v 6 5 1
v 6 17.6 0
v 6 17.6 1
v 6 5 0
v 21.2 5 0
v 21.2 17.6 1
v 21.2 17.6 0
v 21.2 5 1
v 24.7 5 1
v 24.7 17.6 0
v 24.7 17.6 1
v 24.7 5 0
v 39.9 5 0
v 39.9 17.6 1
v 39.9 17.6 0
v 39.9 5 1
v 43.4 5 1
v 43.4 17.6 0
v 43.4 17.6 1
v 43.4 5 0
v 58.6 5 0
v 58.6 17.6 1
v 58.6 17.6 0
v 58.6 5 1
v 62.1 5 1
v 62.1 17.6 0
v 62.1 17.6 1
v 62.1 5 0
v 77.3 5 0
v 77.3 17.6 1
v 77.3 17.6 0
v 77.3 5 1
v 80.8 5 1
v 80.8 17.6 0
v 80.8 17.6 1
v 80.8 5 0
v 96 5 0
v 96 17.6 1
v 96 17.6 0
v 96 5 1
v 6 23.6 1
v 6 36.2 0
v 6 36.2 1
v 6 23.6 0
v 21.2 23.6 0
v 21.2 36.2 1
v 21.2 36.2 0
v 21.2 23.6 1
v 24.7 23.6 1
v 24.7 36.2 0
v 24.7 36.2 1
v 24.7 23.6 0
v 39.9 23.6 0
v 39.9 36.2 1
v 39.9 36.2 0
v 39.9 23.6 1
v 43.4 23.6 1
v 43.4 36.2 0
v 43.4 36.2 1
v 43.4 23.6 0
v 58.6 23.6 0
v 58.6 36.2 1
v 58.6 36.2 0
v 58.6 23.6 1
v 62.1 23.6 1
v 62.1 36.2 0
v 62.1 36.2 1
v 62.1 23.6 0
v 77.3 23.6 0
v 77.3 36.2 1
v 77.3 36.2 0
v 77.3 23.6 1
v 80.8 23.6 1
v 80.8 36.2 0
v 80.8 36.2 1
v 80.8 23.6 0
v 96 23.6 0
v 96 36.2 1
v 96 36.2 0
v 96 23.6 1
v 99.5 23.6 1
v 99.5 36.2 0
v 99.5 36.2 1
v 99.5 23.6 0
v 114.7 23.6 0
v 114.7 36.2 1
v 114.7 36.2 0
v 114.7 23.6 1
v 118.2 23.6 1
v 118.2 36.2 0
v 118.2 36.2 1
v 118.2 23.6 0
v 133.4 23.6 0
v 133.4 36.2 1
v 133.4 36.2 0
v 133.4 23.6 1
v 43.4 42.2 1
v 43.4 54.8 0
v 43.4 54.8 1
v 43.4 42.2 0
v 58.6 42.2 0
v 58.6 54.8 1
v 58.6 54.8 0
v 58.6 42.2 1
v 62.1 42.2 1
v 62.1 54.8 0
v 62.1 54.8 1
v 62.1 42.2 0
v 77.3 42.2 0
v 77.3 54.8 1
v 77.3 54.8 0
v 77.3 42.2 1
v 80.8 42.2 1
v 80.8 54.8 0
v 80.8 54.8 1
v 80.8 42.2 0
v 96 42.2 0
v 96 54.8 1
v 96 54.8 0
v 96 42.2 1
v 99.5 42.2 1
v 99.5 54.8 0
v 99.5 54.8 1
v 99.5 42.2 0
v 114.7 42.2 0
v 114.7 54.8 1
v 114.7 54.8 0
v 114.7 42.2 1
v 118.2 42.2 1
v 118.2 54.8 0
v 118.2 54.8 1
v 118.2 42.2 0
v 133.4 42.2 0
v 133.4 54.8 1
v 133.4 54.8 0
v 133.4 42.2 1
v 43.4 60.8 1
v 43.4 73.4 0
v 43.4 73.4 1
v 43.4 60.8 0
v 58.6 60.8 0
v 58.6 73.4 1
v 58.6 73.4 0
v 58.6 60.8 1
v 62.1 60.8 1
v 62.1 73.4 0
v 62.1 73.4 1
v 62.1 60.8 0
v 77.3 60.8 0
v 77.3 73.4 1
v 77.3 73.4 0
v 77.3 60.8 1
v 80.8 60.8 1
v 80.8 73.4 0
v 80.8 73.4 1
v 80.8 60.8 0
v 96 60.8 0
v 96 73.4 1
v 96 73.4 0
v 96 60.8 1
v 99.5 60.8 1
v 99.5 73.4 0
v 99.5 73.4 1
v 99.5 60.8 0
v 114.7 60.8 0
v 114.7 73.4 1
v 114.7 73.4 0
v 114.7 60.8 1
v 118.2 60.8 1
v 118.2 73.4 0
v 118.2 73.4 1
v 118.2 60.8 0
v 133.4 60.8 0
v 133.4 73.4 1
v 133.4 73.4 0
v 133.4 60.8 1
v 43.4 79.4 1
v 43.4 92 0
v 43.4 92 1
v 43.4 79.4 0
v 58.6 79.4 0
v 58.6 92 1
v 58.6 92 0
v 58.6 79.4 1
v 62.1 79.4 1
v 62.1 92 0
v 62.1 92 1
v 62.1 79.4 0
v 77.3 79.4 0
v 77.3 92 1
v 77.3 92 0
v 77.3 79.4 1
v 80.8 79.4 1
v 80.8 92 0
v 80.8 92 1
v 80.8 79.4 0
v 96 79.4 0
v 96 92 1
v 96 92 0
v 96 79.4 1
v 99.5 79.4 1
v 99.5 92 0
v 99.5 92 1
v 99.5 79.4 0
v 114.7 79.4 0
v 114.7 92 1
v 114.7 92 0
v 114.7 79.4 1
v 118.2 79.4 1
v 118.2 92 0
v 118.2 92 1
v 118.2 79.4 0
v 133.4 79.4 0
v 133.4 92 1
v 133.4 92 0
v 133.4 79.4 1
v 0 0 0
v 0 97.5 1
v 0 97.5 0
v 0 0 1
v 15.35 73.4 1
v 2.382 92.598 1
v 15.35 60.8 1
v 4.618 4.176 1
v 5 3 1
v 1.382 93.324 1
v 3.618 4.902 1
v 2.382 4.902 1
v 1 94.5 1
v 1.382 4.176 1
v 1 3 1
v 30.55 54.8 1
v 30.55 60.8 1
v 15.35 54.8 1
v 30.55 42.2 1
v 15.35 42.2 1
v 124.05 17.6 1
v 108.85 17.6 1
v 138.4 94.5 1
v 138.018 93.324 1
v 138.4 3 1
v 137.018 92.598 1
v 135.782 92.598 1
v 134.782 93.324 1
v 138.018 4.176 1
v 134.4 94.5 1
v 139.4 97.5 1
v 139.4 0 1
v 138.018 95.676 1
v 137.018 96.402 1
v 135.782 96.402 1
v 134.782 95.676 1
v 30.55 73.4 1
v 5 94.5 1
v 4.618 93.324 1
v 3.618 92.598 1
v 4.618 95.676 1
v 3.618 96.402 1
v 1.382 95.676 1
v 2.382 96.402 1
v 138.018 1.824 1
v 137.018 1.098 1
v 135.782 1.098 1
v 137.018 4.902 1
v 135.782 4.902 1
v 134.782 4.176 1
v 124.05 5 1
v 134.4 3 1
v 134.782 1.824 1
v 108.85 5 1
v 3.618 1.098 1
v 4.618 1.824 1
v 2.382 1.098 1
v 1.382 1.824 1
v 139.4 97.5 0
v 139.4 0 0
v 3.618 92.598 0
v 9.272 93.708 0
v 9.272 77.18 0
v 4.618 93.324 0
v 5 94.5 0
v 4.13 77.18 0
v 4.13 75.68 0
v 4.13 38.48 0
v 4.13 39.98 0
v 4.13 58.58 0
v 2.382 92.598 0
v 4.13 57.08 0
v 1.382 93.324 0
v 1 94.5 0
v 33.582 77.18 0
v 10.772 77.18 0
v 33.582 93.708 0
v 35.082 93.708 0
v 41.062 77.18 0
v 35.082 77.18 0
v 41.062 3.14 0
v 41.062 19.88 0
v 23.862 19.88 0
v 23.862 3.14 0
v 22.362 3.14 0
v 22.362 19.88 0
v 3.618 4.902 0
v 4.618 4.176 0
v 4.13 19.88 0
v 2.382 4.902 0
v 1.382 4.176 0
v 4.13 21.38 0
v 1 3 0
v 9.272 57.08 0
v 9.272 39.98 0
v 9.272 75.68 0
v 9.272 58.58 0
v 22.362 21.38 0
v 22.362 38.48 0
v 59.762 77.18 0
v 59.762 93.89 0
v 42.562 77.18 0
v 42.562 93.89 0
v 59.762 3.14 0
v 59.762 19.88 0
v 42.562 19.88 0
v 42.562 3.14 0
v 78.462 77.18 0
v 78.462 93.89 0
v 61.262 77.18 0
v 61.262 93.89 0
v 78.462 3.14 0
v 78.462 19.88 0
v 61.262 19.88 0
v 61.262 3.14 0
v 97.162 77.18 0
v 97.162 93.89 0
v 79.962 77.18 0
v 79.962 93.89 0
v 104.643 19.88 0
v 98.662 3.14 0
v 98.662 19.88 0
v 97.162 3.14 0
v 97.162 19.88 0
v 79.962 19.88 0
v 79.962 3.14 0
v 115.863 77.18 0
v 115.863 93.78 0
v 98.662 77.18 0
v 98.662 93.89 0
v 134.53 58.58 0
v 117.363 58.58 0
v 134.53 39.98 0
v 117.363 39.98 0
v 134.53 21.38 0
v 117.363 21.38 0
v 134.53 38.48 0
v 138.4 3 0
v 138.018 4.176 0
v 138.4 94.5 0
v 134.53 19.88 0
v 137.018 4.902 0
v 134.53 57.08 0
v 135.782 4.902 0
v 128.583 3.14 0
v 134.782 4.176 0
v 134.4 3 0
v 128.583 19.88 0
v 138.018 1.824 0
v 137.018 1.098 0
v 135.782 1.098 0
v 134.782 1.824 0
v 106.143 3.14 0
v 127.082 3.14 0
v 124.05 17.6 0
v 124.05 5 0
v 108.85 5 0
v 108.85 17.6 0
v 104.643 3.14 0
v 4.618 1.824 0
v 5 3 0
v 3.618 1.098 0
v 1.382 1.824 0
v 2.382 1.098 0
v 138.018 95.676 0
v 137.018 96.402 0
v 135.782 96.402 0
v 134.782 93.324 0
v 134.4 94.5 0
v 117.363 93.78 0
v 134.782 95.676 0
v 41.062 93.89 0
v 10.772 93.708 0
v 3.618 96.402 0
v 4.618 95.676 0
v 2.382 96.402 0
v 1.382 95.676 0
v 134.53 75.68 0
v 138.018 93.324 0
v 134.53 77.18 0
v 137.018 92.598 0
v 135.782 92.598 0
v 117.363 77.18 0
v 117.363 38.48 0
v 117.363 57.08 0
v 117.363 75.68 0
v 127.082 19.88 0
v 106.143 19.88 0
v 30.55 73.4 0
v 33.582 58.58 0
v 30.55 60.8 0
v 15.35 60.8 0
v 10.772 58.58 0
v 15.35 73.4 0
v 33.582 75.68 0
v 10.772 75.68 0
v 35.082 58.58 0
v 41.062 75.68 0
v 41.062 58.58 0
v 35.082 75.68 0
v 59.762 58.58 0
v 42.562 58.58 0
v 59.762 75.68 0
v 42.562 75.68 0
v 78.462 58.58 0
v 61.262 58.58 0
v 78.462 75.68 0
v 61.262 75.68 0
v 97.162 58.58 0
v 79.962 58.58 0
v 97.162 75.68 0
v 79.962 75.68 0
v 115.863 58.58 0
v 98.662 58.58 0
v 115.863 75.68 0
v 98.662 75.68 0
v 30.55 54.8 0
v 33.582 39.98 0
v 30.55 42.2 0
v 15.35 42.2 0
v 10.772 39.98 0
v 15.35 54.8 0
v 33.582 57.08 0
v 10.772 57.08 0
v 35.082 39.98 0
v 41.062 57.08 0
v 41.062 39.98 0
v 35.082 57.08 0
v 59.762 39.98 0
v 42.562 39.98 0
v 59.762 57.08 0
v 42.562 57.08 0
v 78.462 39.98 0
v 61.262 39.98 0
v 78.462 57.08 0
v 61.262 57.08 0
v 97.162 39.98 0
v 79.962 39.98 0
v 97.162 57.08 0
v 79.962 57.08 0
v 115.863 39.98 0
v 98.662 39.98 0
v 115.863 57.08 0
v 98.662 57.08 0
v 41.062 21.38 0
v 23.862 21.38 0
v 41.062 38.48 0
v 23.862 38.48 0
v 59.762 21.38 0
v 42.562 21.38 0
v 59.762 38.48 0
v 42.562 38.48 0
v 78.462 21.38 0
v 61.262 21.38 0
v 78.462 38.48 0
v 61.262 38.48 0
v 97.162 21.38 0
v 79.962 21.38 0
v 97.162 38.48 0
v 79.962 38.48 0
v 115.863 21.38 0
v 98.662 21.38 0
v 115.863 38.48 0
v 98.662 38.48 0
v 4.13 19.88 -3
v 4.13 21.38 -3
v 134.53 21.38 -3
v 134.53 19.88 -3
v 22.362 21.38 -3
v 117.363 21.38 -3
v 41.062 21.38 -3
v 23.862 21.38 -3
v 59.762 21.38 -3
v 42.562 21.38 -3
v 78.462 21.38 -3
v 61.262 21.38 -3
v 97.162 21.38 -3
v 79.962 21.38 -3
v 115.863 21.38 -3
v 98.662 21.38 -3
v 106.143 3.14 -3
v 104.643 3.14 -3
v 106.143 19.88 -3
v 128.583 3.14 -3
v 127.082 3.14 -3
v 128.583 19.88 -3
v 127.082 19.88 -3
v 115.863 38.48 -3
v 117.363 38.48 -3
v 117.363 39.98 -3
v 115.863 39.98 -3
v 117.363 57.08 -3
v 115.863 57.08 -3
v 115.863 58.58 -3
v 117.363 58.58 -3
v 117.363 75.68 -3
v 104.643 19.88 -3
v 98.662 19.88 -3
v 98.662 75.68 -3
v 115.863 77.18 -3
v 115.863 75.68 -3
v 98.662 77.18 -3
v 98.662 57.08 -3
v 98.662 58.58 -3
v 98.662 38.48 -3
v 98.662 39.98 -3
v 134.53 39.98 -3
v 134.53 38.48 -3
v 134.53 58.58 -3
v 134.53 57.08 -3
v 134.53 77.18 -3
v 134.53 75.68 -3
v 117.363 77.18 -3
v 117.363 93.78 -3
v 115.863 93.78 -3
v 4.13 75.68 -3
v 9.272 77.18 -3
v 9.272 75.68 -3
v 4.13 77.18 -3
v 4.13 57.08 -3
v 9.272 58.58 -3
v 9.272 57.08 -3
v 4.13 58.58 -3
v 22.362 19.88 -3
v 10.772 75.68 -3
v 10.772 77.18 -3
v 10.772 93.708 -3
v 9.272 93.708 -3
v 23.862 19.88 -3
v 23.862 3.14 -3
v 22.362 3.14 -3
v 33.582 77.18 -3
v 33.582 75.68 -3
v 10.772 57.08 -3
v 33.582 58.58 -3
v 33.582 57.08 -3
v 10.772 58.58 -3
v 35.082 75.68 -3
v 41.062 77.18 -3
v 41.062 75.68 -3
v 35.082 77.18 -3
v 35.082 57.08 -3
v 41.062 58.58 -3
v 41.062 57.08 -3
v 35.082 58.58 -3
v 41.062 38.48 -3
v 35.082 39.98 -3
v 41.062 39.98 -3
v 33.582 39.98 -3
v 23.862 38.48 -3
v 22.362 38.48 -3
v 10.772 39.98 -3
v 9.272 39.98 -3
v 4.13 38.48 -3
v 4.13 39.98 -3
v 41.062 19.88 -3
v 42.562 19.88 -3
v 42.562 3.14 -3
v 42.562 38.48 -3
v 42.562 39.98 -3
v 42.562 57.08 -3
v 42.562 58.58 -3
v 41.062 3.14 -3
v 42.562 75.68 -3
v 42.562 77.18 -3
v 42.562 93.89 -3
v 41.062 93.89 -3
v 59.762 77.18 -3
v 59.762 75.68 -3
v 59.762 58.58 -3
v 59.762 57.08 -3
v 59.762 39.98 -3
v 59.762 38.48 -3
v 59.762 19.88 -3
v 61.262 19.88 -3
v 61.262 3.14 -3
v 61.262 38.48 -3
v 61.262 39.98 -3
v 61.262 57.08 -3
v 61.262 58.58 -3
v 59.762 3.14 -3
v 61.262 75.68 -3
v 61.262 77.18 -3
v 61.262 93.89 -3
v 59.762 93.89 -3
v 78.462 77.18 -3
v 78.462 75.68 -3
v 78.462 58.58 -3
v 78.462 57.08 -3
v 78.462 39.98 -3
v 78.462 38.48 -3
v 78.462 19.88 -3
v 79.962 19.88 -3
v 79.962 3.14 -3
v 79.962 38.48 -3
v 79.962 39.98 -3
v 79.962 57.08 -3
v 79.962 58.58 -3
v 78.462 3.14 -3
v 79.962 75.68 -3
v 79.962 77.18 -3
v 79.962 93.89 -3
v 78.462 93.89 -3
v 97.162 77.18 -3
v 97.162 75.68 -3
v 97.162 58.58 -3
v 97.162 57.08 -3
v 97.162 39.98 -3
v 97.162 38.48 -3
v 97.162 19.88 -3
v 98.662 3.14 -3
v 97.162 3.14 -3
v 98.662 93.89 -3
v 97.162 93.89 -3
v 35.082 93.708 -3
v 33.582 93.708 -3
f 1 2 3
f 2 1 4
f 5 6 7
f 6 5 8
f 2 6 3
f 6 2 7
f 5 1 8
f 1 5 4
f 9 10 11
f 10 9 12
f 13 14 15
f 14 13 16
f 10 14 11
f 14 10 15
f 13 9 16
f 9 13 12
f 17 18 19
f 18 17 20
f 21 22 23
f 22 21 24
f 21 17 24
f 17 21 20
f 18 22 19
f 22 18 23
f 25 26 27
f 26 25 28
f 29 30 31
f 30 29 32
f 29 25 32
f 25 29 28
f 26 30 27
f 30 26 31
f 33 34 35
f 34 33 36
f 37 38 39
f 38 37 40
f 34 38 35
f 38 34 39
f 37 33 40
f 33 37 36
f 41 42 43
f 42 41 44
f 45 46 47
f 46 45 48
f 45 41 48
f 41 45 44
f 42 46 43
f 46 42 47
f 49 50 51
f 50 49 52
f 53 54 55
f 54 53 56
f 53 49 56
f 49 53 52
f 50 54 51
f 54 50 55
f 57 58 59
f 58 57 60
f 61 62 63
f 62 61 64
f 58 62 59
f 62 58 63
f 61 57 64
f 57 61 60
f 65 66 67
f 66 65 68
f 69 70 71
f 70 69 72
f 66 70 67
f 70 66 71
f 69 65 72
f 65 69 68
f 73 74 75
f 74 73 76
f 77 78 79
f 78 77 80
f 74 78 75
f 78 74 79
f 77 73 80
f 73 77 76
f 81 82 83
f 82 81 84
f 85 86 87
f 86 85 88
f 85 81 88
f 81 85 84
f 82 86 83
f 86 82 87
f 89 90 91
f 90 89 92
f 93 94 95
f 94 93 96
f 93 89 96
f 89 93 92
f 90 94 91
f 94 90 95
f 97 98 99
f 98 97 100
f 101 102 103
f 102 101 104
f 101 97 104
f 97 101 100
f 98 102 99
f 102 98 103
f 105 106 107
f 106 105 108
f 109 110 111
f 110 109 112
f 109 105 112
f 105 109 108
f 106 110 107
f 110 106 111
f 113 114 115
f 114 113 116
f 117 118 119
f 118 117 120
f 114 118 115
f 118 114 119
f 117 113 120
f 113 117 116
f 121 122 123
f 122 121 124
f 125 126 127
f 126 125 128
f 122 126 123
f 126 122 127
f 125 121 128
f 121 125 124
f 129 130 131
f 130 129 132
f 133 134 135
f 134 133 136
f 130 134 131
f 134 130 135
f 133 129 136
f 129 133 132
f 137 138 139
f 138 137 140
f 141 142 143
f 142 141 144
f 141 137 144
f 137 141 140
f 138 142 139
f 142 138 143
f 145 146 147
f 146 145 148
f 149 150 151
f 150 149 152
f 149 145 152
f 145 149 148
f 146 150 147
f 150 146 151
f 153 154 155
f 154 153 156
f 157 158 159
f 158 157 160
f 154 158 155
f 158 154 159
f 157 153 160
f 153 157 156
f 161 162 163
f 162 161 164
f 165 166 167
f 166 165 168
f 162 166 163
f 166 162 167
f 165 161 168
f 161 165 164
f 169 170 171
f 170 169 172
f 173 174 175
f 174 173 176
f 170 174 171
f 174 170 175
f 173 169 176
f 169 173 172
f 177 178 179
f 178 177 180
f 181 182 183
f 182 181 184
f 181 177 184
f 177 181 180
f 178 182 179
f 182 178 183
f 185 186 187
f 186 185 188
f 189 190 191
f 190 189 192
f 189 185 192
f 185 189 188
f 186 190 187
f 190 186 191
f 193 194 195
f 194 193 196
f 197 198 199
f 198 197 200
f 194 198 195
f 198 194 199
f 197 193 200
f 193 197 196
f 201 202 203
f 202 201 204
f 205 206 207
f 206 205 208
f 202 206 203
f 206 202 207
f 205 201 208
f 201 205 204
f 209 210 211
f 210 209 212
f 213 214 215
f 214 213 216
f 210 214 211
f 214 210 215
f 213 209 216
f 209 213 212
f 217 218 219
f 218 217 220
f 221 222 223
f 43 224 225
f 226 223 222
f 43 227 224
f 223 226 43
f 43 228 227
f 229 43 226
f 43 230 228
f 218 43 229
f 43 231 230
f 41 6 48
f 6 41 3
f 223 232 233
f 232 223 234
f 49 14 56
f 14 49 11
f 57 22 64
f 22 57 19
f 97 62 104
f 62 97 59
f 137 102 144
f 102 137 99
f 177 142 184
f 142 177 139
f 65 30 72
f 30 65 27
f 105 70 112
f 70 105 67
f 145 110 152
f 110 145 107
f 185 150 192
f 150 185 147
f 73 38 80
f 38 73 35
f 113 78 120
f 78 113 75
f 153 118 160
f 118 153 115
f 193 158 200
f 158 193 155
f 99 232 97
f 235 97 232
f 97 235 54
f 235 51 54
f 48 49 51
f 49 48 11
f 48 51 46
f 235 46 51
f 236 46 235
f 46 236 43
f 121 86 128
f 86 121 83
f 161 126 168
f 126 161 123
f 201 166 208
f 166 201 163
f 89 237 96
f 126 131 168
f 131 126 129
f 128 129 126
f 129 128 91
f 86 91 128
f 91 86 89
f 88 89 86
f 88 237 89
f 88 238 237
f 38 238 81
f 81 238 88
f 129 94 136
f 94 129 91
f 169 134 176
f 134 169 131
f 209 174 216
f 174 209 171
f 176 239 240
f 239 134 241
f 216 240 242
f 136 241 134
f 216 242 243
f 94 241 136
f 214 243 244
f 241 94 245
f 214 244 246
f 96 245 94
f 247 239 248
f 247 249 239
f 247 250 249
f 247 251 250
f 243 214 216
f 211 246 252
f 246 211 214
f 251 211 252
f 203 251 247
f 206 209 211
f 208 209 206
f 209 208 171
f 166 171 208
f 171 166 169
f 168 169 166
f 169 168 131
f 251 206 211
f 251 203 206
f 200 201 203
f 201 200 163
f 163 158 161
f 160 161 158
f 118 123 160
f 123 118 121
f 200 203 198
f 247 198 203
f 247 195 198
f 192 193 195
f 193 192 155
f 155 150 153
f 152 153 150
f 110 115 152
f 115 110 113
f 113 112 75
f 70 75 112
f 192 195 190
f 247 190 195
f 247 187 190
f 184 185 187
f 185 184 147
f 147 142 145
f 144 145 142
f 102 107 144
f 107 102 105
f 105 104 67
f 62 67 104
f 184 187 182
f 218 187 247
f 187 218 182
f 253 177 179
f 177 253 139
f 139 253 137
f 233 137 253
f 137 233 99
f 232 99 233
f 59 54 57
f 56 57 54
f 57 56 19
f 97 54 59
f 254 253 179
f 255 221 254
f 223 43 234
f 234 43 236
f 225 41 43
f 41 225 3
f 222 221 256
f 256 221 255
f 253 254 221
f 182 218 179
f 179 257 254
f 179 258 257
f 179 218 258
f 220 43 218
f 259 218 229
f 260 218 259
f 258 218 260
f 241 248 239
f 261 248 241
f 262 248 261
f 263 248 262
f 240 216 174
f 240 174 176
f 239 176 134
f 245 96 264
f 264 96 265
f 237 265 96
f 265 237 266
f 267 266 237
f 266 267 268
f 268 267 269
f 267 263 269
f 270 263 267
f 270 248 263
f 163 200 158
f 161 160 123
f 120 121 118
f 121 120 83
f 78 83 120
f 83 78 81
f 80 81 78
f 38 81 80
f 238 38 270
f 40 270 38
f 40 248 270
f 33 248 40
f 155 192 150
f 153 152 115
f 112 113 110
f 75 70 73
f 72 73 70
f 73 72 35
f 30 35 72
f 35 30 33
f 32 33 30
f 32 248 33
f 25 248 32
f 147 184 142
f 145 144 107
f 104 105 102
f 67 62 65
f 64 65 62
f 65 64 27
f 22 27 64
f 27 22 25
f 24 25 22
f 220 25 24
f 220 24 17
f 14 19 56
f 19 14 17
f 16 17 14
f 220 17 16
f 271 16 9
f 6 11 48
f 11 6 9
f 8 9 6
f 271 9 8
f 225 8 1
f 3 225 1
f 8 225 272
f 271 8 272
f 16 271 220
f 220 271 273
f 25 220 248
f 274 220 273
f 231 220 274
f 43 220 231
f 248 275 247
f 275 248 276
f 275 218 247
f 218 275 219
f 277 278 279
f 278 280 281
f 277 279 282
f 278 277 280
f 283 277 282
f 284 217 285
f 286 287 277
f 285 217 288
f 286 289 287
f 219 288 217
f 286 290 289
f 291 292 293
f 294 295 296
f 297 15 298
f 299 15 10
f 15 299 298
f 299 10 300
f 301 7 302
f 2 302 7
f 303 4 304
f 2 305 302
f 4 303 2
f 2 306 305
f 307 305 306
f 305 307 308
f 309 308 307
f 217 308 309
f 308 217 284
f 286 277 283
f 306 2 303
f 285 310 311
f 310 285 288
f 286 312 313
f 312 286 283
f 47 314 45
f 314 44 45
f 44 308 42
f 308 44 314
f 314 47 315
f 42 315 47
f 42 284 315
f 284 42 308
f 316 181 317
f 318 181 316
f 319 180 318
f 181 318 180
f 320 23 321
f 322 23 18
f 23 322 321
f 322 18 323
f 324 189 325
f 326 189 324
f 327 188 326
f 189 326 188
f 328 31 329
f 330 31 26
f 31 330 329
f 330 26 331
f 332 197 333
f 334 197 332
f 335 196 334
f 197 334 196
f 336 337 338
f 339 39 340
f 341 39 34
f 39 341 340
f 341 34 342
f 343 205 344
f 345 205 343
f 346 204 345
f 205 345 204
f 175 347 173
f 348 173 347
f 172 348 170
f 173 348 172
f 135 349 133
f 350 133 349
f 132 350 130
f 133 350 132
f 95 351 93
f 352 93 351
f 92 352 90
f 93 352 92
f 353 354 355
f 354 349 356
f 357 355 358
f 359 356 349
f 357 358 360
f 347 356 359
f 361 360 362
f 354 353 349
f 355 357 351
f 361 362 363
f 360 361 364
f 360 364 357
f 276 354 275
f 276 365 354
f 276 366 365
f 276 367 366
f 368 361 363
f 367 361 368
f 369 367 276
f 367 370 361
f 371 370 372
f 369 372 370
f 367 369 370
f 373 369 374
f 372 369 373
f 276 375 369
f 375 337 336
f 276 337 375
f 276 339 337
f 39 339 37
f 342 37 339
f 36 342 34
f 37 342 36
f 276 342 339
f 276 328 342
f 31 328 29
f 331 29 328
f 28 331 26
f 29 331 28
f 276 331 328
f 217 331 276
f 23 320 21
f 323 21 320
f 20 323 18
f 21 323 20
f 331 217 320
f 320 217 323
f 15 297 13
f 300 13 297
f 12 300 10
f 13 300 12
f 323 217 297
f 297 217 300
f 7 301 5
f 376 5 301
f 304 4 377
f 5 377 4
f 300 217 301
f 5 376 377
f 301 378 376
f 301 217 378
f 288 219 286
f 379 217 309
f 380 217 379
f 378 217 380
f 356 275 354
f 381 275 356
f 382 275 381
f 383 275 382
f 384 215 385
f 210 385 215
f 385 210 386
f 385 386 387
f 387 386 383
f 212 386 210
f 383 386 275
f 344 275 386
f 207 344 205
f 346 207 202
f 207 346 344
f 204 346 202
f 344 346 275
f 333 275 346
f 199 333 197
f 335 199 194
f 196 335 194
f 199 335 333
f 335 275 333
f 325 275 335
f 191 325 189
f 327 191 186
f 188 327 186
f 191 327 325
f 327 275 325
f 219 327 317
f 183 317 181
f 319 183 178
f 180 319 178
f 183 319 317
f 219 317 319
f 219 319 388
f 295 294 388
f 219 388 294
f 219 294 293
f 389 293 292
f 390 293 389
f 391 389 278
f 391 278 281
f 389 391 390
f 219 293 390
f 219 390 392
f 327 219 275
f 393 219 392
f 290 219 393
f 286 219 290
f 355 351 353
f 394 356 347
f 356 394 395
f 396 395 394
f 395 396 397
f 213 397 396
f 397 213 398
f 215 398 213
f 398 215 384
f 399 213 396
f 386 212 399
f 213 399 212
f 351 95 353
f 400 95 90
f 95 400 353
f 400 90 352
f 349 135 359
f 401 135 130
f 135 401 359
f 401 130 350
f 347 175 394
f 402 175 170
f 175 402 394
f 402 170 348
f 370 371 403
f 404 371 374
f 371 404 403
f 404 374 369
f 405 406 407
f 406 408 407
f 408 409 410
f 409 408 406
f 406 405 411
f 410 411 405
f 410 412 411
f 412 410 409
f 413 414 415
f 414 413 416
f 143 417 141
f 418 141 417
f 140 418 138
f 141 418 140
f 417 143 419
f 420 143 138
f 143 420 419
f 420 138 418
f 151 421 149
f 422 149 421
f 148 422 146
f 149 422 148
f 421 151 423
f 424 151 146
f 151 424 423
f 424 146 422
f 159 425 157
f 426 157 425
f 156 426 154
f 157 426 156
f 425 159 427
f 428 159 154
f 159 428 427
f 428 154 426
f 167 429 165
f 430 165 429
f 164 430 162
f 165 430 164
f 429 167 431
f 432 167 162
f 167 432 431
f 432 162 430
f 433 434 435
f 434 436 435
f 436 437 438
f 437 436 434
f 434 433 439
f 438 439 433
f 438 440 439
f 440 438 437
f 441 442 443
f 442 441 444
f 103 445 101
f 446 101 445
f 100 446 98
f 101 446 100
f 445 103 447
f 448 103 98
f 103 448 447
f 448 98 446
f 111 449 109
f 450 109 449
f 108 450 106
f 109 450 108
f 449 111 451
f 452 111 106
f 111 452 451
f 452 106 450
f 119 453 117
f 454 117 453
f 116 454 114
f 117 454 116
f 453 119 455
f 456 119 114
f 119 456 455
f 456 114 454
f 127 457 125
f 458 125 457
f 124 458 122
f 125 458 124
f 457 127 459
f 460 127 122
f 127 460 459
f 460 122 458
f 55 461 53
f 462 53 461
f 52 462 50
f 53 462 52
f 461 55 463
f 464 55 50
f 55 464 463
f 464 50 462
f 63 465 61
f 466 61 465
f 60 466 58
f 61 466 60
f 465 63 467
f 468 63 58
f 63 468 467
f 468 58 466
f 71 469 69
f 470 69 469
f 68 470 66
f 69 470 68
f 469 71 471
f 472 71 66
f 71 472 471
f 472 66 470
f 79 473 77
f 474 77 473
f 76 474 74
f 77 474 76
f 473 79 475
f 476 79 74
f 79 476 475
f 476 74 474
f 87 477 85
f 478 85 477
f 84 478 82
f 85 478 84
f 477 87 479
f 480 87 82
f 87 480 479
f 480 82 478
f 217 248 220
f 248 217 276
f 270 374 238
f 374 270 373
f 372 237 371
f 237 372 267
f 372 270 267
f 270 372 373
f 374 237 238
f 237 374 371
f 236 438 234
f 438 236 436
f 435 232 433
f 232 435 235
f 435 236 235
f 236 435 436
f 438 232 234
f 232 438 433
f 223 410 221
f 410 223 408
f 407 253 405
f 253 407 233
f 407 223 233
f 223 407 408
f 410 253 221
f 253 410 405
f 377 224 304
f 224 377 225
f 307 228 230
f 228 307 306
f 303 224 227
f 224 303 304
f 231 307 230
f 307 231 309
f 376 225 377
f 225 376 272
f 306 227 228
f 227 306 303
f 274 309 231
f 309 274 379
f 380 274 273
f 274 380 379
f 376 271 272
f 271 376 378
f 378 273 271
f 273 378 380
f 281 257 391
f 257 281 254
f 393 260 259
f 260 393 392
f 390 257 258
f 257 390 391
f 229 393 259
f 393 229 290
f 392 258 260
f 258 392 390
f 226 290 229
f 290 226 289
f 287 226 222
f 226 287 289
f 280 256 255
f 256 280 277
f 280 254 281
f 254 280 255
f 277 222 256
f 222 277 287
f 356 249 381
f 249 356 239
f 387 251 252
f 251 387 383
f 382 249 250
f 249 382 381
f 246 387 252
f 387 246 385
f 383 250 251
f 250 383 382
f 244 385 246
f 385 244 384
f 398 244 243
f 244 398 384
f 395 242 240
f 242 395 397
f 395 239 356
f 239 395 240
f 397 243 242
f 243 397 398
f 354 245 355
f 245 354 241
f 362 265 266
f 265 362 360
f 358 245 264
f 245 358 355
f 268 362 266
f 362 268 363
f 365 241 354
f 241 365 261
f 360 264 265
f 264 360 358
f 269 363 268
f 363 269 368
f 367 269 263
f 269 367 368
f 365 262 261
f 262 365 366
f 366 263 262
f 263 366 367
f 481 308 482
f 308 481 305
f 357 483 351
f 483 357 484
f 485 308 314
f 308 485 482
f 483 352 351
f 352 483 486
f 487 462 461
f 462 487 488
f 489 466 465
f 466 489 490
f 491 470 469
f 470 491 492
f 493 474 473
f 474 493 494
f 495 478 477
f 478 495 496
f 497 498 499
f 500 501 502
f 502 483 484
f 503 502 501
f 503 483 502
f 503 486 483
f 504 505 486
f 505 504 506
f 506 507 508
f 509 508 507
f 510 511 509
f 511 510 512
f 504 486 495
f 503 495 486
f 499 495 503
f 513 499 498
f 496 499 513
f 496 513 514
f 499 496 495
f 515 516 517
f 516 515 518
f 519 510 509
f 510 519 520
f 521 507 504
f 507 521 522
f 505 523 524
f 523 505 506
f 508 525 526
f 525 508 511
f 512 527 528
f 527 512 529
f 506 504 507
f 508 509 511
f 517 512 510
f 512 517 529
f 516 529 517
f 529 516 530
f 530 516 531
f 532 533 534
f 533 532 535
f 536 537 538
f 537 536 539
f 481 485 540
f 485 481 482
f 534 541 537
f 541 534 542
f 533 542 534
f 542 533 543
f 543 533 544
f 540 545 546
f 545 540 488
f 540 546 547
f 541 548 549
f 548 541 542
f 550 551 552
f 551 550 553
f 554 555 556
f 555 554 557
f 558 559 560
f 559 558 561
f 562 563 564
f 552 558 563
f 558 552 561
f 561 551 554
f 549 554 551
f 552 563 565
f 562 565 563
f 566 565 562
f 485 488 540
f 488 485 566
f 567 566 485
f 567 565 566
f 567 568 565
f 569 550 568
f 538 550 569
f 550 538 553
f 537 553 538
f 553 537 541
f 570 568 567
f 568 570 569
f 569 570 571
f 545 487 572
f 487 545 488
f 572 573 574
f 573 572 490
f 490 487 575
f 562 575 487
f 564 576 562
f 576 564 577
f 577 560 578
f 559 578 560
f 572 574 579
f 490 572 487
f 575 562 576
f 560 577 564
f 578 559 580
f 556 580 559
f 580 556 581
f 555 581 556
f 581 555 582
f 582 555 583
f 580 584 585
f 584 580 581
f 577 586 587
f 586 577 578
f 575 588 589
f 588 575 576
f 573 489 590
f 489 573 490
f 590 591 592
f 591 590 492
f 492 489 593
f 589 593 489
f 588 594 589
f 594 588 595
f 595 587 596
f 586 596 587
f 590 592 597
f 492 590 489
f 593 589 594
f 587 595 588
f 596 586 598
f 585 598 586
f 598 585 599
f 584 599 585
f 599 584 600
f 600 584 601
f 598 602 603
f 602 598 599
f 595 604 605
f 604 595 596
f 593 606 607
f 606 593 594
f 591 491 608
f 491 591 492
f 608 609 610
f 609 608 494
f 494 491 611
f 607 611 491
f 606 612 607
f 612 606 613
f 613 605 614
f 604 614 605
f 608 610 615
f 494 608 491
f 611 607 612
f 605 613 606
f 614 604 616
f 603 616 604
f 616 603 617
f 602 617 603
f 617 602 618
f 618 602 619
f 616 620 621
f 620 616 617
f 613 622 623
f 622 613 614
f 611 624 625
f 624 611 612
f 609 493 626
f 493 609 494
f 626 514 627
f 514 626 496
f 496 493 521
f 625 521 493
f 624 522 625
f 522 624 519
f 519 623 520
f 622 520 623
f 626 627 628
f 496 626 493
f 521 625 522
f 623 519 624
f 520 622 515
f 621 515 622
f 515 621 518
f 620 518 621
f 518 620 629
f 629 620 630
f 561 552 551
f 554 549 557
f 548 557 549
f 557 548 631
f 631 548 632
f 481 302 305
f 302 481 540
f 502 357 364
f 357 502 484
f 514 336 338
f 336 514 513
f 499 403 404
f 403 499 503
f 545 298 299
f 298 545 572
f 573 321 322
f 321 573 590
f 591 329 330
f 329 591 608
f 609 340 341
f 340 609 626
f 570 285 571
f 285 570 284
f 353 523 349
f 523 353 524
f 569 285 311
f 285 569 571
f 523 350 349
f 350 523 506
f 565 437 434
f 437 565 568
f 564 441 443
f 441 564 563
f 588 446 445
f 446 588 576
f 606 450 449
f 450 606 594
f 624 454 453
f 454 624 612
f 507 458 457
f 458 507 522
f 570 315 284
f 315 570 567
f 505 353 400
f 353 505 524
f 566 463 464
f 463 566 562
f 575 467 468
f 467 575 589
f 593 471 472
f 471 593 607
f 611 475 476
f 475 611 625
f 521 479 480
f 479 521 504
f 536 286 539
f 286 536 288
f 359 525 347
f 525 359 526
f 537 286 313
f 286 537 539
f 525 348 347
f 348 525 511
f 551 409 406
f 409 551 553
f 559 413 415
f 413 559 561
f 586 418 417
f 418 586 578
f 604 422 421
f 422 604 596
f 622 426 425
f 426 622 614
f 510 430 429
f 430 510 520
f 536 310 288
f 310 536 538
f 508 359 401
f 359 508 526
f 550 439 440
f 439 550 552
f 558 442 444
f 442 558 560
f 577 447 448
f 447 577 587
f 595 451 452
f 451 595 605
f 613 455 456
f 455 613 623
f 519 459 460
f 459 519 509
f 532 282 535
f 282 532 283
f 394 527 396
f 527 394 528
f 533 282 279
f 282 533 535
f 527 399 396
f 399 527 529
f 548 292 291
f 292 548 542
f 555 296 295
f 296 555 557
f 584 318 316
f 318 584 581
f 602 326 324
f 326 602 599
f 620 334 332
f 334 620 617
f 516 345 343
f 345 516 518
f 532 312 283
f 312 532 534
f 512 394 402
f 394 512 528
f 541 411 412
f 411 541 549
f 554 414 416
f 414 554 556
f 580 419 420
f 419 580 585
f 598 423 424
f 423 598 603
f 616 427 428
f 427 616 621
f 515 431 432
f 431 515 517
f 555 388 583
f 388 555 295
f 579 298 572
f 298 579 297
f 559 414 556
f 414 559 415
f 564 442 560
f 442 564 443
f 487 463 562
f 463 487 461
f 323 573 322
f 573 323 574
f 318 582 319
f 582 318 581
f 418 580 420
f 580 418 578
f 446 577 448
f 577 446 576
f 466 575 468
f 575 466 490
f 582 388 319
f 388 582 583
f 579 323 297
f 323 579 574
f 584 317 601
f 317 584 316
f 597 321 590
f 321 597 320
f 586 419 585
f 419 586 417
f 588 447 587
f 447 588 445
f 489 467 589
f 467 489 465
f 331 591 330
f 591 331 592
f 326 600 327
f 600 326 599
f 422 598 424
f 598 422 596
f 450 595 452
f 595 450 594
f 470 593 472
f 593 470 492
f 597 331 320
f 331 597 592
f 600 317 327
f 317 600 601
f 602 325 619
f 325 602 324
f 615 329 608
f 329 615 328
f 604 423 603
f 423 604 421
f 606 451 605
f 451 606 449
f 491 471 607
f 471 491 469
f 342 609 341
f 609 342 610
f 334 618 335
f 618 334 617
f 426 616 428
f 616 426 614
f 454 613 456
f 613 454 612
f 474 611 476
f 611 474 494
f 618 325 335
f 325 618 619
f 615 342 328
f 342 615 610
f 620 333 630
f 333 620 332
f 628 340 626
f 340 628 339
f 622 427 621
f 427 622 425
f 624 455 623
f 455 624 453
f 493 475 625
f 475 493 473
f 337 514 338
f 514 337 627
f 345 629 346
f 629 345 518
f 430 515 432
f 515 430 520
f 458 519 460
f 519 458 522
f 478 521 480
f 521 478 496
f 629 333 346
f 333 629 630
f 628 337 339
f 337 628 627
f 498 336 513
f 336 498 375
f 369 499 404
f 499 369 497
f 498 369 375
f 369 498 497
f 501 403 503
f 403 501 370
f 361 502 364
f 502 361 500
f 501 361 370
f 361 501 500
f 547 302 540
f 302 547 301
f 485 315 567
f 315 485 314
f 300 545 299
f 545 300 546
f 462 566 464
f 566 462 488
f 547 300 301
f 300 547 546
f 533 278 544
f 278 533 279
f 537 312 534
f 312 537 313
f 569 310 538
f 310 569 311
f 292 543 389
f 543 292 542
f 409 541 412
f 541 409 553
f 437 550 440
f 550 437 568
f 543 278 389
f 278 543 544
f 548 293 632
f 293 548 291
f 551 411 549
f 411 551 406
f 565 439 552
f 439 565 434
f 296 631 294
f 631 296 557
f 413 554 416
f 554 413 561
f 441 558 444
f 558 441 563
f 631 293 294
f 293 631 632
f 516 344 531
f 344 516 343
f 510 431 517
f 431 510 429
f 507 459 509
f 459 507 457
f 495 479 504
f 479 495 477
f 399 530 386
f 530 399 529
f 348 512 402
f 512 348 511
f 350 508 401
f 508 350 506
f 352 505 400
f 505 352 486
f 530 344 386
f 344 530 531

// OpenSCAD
/* Module A v2
 * Fewer keys
 * Keycaps actually fit
 * Cross beams for support
 * Keys actally  fit, snuggly
 */
 
keyCols = 7;
keyRows = 5;
keyX = 15.2;
keyY = 12.6;
keySpace = 3.5;
vKeySpace=6;
edgeSpaceAddition = 4;
edgeSpace = (edgeSpaceAddition*2)-keySpace;
keyZ = -1;

supportH = 3.5;
supportW = 1.5;
supportZ = -3;

moduleX = (edgeSpace+edgeSpaceAddition)+(keySpace*keyCols)+keyX*(keyCols-1)+keyX;
moduleY = (edgeSpaceAddition*2-keySpace)+(vKeySpace*keyRows)+keyY*(keyRows-1)+keyY;
moduleZ = 1;

keySize = [keyX, keyY, moduleZ+2];

function position(x,y,z) = [edgeSpace+keySpace*x+keyX*(x-1)-(edgeSpaceAddition/2), edgeSpace-keySpace+(vKeySpace)*y+keyY*(y-1)-(edgeSpaceAddition/2), z];

module screwHole (x, y){
	translate([x,y,keyZ]) cylinder(h=moduleZ+2, r=2, $fn=10);
}

module keyHoles (yStart, yEnd, xStart, xEnd){
  for(y = [yStart:yEnd]){
    for(x = [xStart:xEnd]){
      translate(position(x,y,keyZ)) cube(keySize);
    }
  }
}

module hBeam (bStart, bEnd){
  for (b = [bStart:bEnd]){  
    color([0.5,0,0]){
      translate(position(0.9,b-0.2,supportZ)){  
        cube([moduleX-(edgeSpace*2),supportW,supportH]);
      }
    }
  }
}

module vBeam (bStart, bEnd){
  for (b = [bStart:bEnd]){  
    color([0.5,0,0]){
      translate(position(b-0.125,0.9,supportZ)){  
        cube([1.5,moduleY-(edgeSpace*1.5),supportH]);
      }
    }
  }
}

module vBeam2 (xStart, xEnd, yStart, yEnd){
  for (x = [xStart:xEnd]){  
      color([0.5,0,0]){
        translate(position(x-0.125,(0.9*yStart),supportZ)){  
          cube([1.5,(keyY*yEnd)-1.7,supportH]);
        }
      }
    }
}

difference(){
  cube([moduleX,moduleY,moduleZ]);
  keyHoles(1,1,1,5);
  keyHoles(1,1,6.5,6.5);
  
  keyHoles(2,2,1,7);
  
  keyHoles(3,3,1.5,1.5);
  keyHoles(3,3,3,7);
  
  keyHoles(4,4,1.5,1.5);
  keyHoles(4,4,3,7);
  
  keyHoles(5,5,3,7);
  
  screwHole(3,3);
  screwHole(3,moduleY-3);
	screwHole(moduleX-3,moduleY-3);
	screwHole(moduleX-3,3);
}

hBeam(2, keyRows);
//vBeam(2, keyCols);
vBeam2(6.4,6.4, 1, 1.5);
vBeam2(7.6,7.6, 1, 1.5);
vBeam2(2,2, 1, 3);
vBeam2(1.3,1.3, 3.2, 4.4);
vBeam2(2.6,2.6, 3.2, 4.4);
vBeam(3,6);
vBeam2(7,7, 2, 6);
